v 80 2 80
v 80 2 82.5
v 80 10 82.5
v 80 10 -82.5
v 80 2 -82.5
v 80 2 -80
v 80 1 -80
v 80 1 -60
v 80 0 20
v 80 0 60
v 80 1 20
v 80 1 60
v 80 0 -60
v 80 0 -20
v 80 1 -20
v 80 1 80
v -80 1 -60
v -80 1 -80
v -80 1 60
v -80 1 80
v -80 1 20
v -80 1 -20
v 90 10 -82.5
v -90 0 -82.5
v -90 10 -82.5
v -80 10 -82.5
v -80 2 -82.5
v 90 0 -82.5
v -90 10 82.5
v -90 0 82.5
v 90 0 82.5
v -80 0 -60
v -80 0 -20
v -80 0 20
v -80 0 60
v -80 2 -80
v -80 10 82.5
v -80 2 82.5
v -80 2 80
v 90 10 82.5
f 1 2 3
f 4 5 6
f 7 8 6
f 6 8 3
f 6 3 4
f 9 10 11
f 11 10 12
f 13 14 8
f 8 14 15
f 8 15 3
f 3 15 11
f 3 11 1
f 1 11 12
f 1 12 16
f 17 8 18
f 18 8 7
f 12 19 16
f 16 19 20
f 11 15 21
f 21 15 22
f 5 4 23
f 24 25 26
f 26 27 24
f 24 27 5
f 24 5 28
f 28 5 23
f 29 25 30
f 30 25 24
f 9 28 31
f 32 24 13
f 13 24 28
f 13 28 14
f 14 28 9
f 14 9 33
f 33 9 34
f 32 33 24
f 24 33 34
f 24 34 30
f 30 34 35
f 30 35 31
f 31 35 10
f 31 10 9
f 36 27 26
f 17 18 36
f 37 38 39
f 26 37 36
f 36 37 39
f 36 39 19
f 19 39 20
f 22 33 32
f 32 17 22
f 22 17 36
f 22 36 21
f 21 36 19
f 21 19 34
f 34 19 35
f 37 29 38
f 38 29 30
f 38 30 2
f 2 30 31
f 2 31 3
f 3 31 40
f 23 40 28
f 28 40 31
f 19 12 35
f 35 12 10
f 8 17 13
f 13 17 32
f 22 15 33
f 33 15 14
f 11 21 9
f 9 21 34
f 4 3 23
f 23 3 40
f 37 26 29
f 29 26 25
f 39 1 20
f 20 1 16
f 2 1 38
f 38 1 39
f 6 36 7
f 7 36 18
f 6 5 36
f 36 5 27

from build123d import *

# Parameters (mm, degrees)
SKETCH5_W           = 180
SKETCH5_H           = 165
SKETCH5_W_2         = 160
SKETCH5_H_2         = 40
BOSS_EXTRUDE3_DEPTH = 1
SKETCH6_W           = 10
SKETCH6_H           = 165
BOSS_EXTRUDE4_DEPTH = 9
SKETCH7_W           = 160
SKETCH7_H           = 2.5
BOSS_EXTRUDE5_DEPTH = 1
SKETCH10_W          = 160
SKETCH10_H          = 2.5
BOSS_EXTRUDE6_DEPTH = 1


with BuildPart() as part:
    # Sketch5 → Boss-Extrude3 (new body)
    with BuildSketch(Plane(origin=(0, 0, 0), x_dir=(1, 0, 0), z_dir=(0, 1, 0))):
        Rectangle(SKETCH5_W, SKETCH5_H)
        with Locations((0, -40)):
            Rectangle(SKETCH5_W_2, SKETCH5_H_2, mode=Mode.SUBTRACT)
        with Locations((0, 40)):
            Rectangle(SKETCH5_W_2, SKETCH5_H_2, mode=Mode.SUBTRACT)
    extrude(amount=BOSS_EXTRUDE3_DEPTH)

    # Sketch6 → Boss-Extrude4 (add)
    with BuildSketch(Plane(origin=(0, 1, 0), x_dir=(1, 0, 0), z_dir=(0, 1, 0))):
        with Locations((-85, 0)):
            Rectangle(SKETCH6_W, SKETCH6_H)
        with Locations((85, 0)):
            Rectangle(SKETCH6_W, SKETCH6_H)
    extrude(amount=BOSS_EXTRUDE4_DEPTH)

    # Sketch7 → Boss-Extrude5 (add)
    with BuildSketch(Plane(origin=(0, 1, 0), x_dir=(1, 0, 0), z_dir=(0, 1, 0))):
        with Locations((0, -81.25)):
            Rectangle(SKETCH7_W, SKETCH7_H)
    extrude(amount=BOSS_EXTRUDE5_DEPTH)

    # Sketch10 → Boss-Extrude6 (add)
    with BuildSketch(Plane(origin=(0, 1, 0), x_dir=(1, 0, 0), z_dir=(0, 1, 0))):
        with Locations((0, 81.25)):
            Rectangle(SKETCH10_W, SKETCH10_H)
    extrude(amount=BOSS_EXTRUDE6_DEPTH)


solid = part.part
